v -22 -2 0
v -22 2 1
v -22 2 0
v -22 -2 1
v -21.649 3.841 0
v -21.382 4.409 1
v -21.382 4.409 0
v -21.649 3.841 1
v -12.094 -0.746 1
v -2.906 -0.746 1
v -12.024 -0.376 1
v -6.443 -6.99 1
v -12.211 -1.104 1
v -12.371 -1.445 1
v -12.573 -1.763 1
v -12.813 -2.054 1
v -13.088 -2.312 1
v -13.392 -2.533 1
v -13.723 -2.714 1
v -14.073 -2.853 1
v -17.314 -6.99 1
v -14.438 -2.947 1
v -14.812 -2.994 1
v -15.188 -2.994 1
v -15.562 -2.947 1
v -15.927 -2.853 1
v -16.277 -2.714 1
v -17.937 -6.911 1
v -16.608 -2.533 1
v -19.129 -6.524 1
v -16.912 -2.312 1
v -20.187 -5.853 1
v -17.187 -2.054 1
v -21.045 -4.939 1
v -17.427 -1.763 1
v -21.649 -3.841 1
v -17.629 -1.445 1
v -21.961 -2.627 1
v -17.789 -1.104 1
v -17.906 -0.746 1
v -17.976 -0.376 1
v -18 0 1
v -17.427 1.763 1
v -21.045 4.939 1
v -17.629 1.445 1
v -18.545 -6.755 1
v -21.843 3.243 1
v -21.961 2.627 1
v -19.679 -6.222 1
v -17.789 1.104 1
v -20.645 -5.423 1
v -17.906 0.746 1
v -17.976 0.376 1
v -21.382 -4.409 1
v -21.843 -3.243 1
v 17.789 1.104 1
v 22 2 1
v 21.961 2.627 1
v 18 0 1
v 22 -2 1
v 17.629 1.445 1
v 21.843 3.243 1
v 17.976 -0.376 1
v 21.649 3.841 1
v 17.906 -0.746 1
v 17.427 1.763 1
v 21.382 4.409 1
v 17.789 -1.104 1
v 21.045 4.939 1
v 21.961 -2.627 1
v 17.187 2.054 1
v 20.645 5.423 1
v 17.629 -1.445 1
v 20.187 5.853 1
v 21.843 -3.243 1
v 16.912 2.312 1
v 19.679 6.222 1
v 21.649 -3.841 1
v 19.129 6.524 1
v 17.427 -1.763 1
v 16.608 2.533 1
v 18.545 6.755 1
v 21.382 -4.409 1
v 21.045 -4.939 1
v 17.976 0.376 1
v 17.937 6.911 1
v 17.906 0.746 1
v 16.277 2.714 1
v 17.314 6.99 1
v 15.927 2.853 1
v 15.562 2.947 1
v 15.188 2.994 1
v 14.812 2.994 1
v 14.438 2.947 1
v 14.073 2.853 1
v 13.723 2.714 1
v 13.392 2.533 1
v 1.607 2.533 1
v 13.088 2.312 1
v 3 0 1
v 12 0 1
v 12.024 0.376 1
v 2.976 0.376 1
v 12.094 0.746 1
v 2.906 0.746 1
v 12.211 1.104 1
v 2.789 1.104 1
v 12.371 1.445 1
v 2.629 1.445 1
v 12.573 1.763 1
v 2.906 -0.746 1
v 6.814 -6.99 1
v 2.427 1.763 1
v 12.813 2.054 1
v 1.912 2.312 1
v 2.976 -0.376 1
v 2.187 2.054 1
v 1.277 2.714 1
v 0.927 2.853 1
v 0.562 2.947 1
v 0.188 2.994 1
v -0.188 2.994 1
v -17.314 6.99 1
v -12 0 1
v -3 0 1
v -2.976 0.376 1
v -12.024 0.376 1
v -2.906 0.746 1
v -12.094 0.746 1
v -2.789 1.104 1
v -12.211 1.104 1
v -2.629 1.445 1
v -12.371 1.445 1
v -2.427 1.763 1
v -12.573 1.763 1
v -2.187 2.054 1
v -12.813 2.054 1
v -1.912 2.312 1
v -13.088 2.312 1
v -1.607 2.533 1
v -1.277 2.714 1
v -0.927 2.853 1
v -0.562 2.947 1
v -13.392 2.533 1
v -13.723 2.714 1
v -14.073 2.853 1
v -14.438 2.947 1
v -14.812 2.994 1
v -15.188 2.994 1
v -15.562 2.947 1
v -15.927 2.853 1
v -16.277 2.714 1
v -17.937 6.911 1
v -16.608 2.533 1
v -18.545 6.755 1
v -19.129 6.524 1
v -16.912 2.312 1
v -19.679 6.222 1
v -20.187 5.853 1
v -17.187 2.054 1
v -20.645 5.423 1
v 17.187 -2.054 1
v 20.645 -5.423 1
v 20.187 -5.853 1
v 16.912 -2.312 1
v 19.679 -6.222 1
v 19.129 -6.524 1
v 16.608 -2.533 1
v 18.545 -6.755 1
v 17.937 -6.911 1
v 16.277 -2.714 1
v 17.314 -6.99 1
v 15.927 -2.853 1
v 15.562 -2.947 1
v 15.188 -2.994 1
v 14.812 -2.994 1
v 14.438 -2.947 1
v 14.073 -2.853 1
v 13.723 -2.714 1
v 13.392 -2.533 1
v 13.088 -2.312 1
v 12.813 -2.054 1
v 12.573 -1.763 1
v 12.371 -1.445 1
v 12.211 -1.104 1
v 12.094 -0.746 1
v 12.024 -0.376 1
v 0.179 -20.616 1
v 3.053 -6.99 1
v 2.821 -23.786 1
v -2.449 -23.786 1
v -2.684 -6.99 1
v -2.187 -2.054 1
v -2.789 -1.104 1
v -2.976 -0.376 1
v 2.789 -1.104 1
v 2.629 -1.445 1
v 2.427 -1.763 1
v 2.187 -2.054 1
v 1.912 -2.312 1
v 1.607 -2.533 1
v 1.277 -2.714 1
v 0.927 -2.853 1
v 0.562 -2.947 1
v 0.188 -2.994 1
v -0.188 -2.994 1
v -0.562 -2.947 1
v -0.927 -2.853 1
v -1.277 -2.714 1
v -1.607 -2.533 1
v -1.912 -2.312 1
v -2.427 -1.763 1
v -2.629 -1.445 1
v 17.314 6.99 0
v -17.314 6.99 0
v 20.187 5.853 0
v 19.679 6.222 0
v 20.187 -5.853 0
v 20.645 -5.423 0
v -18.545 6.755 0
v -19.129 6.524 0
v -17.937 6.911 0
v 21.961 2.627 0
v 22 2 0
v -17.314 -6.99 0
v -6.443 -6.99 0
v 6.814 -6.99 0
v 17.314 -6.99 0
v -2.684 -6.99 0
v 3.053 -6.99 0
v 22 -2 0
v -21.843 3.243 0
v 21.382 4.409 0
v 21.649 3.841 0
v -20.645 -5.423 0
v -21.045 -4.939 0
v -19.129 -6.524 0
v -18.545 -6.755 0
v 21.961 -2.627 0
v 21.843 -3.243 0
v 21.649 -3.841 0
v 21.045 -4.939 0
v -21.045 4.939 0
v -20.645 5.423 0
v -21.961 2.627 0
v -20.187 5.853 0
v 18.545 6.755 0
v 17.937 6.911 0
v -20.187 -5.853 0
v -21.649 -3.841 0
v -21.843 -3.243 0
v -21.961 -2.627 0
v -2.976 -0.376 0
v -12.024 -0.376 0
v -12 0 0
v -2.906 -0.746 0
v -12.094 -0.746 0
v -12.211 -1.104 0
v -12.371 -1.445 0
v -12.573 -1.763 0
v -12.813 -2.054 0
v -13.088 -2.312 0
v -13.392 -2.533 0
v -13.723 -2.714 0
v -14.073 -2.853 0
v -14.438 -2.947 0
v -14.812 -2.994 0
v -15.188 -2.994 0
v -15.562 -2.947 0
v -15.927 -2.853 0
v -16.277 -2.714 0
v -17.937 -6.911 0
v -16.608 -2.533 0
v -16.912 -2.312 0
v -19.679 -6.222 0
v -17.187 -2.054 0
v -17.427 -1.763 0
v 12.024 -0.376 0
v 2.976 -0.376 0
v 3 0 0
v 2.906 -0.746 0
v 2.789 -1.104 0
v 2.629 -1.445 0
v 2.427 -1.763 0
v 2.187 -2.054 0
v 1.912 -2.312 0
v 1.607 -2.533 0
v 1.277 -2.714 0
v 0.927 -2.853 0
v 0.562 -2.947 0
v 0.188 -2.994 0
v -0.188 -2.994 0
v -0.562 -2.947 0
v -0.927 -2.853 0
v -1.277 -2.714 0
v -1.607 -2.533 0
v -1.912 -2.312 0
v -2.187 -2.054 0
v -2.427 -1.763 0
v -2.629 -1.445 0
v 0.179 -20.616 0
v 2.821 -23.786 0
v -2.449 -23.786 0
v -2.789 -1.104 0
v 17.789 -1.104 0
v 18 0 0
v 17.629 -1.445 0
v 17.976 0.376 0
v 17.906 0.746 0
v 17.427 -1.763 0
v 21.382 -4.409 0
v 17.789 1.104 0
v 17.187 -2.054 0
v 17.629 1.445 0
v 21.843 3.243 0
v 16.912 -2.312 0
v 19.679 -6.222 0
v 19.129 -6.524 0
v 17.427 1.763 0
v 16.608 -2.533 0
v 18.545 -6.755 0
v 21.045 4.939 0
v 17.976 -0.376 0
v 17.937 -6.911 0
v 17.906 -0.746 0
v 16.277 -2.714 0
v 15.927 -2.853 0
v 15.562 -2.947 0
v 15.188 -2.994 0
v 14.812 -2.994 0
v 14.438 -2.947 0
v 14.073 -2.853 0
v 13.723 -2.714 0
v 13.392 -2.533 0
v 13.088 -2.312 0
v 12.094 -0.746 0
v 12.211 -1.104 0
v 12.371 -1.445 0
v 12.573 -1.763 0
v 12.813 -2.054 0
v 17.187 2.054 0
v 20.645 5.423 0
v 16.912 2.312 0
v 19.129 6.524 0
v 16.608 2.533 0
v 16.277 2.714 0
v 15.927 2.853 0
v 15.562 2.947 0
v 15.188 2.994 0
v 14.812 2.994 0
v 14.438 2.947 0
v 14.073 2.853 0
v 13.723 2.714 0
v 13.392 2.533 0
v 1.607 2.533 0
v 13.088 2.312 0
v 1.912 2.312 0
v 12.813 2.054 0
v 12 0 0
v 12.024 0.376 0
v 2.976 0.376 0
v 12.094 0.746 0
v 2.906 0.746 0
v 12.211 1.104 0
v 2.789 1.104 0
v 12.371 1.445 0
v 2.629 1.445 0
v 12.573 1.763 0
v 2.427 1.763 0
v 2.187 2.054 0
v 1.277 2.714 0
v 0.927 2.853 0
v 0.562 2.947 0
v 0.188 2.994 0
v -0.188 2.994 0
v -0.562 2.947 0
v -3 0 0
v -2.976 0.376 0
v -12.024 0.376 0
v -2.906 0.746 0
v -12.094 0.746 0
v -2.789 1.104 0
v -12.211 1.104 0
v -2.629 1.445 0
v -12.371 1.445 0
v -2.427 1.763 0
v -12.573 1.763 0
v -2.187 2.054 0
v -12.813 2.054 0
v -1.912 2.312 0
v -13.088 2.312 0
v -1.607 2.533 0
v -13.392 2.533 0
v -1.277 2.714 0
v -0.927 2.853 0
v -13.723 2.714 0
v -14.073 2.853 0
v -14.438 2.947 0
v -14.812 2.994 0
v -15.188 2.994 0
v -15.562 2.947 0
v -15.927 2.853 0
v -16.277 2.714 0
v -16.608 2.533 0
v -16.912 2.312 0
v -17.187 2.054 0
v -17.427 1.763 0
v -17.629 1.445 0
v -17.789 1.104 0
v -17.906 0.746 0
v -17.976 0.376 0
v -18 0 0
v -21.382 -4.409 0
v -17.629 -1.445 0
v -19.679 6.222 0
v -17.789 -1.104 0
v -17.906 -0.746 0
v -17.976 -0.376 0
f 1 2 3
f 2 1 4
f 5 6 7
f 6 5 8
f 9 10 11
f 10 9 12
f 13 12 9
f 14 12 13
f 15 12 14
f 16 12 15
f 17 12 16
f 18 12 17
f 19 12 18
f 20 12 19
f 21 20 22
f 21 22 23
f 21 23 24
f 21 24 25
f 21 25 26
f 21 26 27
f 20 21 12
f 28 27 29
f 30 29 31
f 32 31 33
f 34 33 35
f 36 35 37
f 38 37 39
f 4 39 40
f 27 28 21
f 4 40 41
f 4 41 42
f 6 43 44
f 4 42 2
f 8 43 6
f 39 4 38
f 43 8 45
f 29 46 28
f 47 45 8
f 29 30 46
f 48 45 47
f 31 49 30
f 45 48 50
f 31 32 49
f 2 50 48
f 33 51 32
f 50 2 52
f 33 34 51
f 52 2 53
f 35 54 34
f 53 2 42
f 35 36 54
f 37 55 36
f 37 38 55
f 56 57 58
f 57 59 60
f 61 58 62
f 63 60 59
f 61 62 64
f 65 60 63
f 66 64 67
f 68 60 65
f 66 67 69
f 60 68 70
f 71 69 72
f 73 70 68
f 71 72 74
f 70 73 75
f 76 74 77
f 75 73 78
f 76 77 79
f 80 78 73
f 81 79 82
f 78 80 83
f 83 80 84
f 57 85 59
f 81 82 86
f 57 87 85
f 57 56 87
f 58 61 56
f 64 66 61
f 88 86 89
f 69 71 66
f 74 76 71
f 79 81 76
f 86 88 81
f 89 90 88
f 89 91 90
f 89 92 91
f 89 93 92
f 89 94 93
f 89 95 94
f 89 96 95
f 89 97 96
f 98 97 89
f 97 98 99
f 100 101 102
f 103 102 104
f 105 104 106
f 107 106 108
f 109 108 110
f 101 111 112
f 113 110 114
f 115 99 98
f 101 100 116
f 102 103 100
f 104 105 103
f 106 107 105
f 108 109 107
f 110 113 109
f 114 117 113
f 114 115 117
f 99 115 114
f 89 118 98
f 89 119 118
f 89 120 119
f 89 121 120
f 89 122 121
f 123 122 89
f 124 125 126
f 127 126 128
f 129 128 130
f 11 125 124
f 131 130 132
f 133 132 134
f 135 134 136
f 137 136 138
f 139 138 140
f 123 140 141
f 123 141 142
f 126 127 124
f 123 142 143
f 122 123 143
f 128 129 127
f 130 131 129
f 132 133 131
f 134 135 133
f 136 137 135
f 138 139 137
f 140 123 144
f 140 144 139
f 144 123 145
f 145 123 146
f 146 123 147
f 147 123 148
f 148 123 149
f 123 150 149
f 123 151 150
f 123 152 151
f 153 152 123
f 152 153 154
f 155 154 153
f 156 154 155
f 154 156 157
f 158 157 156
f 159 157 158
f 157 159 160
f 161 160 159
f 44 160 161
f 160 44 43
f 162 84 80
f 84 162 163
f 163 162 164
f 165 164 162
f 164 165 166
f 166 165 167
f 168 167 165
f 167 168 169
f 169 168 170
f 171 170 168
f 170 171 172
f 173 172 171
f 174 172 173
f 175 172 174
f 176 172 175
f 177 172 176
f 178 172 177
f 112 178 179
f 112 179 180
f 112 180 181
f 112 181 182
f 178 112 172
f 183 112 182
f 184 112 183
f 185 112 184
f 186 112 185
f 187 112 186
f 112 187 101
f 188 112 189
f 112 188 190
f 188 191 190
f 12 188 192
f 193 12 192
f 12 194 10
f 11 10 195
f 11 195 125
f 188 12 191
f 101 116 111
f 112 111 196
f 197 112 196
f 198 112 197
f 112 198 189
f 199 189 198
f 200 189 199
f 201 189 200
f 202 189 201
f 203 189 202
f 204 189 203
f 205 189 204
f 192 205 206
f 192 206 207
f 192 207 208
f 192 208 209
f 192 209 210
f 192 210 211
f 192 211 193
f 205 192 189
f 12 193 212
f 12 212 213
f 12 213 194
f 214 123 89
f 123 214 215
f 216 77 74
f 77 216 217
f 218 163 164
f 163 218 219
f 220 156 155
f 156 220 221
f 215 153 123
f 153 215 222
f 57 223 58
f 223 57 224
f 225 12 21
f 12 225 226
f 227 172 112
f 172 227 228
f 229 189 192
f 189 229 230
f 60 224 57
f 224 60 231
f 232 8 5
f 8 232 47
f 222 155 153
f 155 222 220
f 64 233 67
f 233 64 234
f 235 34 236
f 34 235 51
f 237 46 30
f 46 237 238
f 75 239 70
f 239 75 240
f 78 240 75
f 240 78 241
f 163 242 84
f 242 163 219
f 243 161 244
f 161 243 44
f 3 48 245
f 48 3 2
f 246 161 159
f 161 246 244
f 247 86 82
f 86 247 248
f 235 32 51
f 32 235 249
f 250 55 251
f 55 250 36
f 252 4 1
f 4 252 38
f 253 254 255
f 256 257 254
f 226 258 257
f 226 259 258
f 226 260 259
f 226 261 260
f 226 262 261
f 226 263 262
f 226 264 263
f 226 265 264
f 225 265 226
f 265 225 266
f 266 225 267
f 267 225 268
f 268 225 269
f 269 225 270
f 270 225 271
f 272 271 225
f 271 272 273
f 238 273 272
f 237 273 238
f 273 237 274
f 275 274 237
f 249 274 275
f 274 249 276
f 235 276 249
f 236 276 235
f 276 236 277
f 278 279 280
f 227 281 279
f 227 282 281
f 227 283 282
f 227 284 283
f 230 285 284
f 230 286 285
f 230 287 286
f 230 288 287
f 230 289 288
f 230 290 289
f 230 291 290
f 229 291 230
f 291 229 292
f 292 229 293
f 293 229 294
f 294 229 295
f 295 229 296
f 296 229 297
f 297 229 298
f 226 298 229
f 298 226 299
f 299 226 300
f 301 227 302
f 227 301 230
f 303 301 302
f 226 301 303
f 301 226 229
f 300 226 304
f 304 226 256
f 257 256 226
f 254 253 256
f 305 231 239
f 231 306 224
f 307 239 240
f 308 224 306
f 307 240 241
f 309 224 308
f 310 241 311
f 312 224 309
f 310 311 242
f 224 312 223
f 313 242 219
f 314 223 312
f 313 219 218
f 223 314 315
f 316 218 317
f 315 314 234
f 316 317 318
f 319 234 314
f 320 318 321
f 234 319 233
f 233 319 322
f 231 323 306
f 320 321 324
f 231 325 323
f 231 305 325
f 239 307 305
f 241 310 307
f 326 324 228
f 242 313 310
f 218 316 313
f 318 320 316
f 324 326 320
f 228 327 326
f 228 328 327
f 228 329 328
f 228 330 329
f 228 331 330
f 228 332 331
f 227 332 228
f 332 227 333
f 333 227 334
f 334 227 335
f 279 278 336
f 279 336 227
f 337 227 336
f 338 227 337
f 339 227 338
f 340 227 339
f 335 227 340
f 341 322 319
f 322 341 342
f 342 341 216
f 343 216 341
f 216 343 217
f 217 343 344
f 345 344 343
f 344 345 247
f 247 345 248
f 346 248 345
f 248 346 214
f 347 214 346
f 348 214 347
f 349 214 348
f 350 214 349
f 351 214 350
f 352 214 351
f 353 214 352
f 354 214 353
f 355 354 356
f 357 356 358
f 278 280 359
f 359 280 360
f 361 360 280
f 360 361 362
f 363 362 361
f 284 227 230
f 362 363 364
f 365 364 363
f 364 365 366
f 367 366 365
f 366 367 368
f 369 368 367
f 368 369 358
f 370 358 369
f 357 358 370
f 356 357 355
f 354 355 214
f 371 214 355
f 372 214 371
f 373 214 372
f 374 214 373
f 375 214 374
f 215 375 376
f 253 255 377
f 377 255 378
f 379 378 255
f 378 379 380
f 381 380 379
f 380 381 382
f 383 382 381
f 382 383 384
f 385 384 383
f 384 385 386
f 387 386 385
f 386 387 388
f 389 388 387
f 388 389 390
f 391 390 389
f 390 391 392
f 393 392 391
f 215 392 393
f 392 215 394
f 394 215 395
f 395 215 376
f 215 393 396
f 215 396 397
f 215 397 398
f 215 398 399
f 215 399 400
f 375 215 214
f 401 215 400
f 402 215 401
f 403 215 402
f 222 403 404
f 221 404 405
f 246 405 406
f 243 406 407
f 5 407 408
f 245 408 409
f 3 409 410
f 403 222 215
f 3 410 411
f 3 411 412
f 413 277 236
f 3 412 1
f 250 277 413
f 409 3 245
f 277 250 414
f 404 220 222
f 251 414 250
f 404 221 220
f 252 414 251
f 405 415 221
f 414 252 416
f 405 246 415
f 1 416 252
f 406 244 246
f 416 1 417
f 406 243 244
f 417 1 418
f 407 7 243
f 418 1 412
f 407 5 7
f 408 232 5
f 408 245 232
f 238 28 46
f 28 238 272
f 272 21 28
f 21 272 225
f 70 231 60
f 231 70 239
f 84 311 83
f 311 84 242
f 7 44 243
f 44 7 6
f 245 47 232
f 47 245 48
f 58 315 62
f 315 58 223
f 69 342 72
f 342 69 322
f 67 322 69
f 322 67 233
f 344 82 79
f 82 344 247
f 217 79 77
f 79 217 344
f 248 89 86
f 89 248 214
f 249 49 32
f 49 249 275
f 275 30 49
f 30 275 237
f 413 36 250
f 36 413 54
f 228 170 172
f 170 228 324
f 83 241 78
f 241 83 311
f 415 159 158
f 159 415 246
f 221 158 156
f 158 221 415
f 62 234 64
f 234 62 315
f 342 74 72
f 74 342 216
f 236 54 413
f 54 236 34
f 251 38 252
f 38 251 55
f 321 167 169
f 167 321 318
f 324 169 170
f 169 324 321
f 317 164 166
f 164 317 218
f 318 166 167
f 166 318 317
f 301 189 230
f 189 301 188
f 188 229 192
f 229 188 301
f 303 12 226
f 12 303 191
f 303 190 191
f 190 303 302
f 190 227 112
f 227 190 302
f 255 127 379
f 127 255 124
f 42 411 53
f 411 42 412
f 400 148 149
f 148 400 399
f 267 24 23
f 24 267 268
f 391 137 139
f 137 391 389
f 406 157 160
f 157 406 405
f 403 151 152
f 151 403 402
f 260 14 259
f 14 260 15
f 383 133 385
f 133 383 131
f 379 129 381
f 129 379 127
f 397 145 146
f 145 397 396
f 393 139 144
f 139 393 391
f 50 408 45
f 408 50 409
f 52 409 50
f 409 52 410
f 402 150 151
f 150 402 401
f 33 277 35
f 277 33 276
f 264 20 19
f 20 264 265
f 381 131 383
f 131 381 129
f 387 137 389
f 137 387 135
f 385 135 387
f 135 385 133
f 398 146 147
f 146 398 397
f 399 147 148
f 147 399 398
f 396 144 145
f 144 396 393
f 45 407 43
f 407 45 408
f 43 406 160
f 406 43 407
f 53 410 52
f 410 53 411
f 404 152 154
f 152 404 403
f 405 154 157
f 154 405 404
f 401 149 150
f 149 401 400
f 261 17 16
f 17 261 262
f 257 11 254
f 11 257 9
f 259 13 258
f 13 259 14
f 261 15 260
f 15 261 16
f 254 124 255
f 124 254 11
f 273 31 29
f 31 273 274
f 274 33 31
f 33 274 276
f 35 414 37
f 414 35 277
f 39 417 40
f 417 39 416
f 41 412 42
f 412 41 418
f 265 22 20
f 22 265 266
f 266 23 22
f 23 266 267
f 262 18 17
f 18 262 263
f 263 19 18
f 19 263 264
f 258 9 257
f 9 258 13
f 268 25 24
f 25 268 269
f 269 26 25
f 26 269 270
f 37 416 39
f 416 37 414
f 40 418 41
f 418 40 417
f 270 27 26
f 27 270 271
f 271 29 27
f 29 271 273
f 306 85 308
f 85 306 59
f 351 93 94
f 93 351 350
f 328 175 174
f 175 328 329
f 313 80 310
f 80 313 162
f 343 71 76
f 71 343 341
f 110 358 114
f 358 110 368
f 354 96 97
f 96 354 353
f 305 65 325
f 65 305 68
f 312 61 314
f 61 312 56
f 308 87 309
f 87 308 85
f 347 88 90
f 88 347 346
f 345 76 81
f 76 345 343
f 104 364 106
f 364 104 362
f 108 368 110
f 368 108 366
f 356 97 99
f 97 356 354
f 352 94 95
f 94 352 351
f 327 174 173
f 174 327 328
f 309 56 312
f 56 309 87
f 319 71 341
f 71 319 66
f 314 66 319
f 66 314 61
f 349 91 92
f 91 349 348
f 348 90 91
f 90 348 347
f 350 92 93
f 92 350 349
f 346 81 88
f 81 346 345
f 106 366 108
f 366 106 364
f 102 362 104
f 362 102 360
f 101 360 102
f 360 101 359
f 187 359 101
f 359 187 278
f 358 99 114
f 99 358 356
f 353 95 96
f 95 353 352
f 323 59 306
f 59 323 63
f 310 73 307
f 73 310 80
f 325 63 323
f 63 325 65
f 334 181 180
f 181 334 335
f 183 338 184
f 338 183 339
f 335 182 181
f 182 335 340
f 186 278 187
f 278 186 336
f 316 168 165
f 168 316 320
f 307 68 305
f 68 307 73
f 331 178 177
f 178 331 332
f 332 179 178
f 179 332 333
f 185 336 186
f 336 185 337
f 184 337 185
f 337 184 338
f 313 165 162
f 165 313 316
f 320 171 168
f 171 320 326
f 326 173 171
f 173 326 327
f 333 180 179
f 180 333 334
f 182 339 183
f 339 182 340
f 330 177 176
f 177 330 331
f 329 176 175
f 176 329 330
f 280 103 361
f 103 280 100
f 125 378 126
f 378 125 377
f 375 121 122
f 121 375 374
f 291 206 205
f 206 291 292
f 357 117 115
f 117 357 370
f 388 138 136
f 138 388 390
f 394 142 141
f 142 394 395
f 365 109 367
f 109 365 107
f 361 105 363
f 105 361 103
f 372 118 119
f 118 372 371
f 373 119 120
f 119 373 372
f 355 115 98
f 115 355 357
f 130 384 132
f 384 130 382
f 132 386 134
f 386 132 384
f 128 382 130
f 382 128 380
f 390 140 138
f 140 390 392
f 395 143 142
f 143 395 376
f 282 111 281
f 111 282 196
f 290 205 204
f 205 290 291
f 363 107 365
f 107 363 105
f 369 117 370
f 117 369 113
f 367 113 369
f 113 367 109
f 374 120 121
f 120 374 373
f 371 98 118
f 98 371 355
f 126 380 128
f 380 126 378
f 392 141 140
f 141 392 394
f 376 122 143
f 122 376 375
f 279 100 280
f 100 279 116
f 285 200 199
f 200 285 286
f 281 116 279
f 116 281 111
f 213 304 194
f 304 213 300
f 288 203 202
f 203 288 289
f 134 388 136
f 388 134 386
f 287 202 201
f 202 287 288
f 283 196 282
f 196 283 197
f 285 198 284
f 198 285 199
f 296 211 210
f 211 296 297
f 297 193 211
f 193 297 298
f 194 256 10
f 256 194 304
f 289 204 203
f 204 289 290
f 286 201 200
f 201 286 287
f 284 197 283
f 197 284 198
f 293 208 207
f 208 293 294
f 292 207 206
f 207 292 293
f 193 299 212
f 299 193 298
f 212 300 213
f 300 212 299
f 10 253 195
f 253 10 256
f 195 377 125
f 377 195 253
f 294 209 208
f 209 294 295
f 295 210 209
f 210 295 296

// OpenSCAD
$fn = 50;


difference() {
	union() {
		translate(v = [0, 0, 0]) {
			rotate(a = [0, 0, 0]) {
				hull() {
					translate(v = [-17.0000000000, 2.0000000000, 0]) {
						rotate(a = [0, 0, 0]) {
							translate(v = [0, 0, 0]) {
								rotate(a = [0, 0, 0]) {
									cylinder(h = 1, r = 5);
								}
							}
						}
					}
					translate(v = [17.0000000000, 2.0000000000, 0]) {
						rotate(a = [0, 0, 0]) {
							translate(v = [0, 0, 0]) {
								rotate(a = [0, 0, 0]) {
									cylinder(h = 1, r = 5);
								}
							}
						}
					}
					translate(v = [-17.0000000000, -2.0000000000, 0]) {
						rotate(a = [0, 0, 0]) {
							translate(v = [0, 0, 0]) {
								rotate(a = [0, 0, 0]) {
									cylinder(h = 1, r = 5);
								}
							}
						}
					}
					translate(v = [17.0000000000, -2.0000000000, 0]) {
						rotate(a = [0, 0, 0]) {
							translate(v = [0, 0, 0]) {
								rotate(a = [0, 0, 0]) {
									cylinder(h = 1, r = 5);
								}
							}
						}
					}
				}
			}
		}
		translate(v = [0, -5, 0]) {
			rotate(a = [0, 0, 0]) {
				linear_extrude(height = 1) {
					text(font = "DejaVu Sans Mono:style=Bold", halign = "center", size = 19.0000000000, text = "V", valign = "top");
				}
			}
		}
	}
	union() {
		translate(v = [-15.0000000000, 0.0000000000, -125.0000000000]) {
			rotate(a = [0, 0, 0]) {
				cylinder(h = 250, r = 3.0000000000);
			}
		}
		translate(v = [15.0000000000, 0.0000000000, -125.0000000000]) {
			rotate(a = [0, 0, 0]) {
				cylinder(h = 250, r = 3.0000000000);
			}
		}
		translate(v = [15.0000000000, 0.0000000000, -125.0000000000]) {
			rotate(a = [0, 0, 0]) {
				cylinder(h = 250, r = 3.0000000000);
			}
		}
		translate(v = [0, 0, -125.0000000000]) {
			rotate(a = [0, 0, 0]) {
				cylinder(h = 250, r = 3.0000000000);
			}
		}
	}
}
